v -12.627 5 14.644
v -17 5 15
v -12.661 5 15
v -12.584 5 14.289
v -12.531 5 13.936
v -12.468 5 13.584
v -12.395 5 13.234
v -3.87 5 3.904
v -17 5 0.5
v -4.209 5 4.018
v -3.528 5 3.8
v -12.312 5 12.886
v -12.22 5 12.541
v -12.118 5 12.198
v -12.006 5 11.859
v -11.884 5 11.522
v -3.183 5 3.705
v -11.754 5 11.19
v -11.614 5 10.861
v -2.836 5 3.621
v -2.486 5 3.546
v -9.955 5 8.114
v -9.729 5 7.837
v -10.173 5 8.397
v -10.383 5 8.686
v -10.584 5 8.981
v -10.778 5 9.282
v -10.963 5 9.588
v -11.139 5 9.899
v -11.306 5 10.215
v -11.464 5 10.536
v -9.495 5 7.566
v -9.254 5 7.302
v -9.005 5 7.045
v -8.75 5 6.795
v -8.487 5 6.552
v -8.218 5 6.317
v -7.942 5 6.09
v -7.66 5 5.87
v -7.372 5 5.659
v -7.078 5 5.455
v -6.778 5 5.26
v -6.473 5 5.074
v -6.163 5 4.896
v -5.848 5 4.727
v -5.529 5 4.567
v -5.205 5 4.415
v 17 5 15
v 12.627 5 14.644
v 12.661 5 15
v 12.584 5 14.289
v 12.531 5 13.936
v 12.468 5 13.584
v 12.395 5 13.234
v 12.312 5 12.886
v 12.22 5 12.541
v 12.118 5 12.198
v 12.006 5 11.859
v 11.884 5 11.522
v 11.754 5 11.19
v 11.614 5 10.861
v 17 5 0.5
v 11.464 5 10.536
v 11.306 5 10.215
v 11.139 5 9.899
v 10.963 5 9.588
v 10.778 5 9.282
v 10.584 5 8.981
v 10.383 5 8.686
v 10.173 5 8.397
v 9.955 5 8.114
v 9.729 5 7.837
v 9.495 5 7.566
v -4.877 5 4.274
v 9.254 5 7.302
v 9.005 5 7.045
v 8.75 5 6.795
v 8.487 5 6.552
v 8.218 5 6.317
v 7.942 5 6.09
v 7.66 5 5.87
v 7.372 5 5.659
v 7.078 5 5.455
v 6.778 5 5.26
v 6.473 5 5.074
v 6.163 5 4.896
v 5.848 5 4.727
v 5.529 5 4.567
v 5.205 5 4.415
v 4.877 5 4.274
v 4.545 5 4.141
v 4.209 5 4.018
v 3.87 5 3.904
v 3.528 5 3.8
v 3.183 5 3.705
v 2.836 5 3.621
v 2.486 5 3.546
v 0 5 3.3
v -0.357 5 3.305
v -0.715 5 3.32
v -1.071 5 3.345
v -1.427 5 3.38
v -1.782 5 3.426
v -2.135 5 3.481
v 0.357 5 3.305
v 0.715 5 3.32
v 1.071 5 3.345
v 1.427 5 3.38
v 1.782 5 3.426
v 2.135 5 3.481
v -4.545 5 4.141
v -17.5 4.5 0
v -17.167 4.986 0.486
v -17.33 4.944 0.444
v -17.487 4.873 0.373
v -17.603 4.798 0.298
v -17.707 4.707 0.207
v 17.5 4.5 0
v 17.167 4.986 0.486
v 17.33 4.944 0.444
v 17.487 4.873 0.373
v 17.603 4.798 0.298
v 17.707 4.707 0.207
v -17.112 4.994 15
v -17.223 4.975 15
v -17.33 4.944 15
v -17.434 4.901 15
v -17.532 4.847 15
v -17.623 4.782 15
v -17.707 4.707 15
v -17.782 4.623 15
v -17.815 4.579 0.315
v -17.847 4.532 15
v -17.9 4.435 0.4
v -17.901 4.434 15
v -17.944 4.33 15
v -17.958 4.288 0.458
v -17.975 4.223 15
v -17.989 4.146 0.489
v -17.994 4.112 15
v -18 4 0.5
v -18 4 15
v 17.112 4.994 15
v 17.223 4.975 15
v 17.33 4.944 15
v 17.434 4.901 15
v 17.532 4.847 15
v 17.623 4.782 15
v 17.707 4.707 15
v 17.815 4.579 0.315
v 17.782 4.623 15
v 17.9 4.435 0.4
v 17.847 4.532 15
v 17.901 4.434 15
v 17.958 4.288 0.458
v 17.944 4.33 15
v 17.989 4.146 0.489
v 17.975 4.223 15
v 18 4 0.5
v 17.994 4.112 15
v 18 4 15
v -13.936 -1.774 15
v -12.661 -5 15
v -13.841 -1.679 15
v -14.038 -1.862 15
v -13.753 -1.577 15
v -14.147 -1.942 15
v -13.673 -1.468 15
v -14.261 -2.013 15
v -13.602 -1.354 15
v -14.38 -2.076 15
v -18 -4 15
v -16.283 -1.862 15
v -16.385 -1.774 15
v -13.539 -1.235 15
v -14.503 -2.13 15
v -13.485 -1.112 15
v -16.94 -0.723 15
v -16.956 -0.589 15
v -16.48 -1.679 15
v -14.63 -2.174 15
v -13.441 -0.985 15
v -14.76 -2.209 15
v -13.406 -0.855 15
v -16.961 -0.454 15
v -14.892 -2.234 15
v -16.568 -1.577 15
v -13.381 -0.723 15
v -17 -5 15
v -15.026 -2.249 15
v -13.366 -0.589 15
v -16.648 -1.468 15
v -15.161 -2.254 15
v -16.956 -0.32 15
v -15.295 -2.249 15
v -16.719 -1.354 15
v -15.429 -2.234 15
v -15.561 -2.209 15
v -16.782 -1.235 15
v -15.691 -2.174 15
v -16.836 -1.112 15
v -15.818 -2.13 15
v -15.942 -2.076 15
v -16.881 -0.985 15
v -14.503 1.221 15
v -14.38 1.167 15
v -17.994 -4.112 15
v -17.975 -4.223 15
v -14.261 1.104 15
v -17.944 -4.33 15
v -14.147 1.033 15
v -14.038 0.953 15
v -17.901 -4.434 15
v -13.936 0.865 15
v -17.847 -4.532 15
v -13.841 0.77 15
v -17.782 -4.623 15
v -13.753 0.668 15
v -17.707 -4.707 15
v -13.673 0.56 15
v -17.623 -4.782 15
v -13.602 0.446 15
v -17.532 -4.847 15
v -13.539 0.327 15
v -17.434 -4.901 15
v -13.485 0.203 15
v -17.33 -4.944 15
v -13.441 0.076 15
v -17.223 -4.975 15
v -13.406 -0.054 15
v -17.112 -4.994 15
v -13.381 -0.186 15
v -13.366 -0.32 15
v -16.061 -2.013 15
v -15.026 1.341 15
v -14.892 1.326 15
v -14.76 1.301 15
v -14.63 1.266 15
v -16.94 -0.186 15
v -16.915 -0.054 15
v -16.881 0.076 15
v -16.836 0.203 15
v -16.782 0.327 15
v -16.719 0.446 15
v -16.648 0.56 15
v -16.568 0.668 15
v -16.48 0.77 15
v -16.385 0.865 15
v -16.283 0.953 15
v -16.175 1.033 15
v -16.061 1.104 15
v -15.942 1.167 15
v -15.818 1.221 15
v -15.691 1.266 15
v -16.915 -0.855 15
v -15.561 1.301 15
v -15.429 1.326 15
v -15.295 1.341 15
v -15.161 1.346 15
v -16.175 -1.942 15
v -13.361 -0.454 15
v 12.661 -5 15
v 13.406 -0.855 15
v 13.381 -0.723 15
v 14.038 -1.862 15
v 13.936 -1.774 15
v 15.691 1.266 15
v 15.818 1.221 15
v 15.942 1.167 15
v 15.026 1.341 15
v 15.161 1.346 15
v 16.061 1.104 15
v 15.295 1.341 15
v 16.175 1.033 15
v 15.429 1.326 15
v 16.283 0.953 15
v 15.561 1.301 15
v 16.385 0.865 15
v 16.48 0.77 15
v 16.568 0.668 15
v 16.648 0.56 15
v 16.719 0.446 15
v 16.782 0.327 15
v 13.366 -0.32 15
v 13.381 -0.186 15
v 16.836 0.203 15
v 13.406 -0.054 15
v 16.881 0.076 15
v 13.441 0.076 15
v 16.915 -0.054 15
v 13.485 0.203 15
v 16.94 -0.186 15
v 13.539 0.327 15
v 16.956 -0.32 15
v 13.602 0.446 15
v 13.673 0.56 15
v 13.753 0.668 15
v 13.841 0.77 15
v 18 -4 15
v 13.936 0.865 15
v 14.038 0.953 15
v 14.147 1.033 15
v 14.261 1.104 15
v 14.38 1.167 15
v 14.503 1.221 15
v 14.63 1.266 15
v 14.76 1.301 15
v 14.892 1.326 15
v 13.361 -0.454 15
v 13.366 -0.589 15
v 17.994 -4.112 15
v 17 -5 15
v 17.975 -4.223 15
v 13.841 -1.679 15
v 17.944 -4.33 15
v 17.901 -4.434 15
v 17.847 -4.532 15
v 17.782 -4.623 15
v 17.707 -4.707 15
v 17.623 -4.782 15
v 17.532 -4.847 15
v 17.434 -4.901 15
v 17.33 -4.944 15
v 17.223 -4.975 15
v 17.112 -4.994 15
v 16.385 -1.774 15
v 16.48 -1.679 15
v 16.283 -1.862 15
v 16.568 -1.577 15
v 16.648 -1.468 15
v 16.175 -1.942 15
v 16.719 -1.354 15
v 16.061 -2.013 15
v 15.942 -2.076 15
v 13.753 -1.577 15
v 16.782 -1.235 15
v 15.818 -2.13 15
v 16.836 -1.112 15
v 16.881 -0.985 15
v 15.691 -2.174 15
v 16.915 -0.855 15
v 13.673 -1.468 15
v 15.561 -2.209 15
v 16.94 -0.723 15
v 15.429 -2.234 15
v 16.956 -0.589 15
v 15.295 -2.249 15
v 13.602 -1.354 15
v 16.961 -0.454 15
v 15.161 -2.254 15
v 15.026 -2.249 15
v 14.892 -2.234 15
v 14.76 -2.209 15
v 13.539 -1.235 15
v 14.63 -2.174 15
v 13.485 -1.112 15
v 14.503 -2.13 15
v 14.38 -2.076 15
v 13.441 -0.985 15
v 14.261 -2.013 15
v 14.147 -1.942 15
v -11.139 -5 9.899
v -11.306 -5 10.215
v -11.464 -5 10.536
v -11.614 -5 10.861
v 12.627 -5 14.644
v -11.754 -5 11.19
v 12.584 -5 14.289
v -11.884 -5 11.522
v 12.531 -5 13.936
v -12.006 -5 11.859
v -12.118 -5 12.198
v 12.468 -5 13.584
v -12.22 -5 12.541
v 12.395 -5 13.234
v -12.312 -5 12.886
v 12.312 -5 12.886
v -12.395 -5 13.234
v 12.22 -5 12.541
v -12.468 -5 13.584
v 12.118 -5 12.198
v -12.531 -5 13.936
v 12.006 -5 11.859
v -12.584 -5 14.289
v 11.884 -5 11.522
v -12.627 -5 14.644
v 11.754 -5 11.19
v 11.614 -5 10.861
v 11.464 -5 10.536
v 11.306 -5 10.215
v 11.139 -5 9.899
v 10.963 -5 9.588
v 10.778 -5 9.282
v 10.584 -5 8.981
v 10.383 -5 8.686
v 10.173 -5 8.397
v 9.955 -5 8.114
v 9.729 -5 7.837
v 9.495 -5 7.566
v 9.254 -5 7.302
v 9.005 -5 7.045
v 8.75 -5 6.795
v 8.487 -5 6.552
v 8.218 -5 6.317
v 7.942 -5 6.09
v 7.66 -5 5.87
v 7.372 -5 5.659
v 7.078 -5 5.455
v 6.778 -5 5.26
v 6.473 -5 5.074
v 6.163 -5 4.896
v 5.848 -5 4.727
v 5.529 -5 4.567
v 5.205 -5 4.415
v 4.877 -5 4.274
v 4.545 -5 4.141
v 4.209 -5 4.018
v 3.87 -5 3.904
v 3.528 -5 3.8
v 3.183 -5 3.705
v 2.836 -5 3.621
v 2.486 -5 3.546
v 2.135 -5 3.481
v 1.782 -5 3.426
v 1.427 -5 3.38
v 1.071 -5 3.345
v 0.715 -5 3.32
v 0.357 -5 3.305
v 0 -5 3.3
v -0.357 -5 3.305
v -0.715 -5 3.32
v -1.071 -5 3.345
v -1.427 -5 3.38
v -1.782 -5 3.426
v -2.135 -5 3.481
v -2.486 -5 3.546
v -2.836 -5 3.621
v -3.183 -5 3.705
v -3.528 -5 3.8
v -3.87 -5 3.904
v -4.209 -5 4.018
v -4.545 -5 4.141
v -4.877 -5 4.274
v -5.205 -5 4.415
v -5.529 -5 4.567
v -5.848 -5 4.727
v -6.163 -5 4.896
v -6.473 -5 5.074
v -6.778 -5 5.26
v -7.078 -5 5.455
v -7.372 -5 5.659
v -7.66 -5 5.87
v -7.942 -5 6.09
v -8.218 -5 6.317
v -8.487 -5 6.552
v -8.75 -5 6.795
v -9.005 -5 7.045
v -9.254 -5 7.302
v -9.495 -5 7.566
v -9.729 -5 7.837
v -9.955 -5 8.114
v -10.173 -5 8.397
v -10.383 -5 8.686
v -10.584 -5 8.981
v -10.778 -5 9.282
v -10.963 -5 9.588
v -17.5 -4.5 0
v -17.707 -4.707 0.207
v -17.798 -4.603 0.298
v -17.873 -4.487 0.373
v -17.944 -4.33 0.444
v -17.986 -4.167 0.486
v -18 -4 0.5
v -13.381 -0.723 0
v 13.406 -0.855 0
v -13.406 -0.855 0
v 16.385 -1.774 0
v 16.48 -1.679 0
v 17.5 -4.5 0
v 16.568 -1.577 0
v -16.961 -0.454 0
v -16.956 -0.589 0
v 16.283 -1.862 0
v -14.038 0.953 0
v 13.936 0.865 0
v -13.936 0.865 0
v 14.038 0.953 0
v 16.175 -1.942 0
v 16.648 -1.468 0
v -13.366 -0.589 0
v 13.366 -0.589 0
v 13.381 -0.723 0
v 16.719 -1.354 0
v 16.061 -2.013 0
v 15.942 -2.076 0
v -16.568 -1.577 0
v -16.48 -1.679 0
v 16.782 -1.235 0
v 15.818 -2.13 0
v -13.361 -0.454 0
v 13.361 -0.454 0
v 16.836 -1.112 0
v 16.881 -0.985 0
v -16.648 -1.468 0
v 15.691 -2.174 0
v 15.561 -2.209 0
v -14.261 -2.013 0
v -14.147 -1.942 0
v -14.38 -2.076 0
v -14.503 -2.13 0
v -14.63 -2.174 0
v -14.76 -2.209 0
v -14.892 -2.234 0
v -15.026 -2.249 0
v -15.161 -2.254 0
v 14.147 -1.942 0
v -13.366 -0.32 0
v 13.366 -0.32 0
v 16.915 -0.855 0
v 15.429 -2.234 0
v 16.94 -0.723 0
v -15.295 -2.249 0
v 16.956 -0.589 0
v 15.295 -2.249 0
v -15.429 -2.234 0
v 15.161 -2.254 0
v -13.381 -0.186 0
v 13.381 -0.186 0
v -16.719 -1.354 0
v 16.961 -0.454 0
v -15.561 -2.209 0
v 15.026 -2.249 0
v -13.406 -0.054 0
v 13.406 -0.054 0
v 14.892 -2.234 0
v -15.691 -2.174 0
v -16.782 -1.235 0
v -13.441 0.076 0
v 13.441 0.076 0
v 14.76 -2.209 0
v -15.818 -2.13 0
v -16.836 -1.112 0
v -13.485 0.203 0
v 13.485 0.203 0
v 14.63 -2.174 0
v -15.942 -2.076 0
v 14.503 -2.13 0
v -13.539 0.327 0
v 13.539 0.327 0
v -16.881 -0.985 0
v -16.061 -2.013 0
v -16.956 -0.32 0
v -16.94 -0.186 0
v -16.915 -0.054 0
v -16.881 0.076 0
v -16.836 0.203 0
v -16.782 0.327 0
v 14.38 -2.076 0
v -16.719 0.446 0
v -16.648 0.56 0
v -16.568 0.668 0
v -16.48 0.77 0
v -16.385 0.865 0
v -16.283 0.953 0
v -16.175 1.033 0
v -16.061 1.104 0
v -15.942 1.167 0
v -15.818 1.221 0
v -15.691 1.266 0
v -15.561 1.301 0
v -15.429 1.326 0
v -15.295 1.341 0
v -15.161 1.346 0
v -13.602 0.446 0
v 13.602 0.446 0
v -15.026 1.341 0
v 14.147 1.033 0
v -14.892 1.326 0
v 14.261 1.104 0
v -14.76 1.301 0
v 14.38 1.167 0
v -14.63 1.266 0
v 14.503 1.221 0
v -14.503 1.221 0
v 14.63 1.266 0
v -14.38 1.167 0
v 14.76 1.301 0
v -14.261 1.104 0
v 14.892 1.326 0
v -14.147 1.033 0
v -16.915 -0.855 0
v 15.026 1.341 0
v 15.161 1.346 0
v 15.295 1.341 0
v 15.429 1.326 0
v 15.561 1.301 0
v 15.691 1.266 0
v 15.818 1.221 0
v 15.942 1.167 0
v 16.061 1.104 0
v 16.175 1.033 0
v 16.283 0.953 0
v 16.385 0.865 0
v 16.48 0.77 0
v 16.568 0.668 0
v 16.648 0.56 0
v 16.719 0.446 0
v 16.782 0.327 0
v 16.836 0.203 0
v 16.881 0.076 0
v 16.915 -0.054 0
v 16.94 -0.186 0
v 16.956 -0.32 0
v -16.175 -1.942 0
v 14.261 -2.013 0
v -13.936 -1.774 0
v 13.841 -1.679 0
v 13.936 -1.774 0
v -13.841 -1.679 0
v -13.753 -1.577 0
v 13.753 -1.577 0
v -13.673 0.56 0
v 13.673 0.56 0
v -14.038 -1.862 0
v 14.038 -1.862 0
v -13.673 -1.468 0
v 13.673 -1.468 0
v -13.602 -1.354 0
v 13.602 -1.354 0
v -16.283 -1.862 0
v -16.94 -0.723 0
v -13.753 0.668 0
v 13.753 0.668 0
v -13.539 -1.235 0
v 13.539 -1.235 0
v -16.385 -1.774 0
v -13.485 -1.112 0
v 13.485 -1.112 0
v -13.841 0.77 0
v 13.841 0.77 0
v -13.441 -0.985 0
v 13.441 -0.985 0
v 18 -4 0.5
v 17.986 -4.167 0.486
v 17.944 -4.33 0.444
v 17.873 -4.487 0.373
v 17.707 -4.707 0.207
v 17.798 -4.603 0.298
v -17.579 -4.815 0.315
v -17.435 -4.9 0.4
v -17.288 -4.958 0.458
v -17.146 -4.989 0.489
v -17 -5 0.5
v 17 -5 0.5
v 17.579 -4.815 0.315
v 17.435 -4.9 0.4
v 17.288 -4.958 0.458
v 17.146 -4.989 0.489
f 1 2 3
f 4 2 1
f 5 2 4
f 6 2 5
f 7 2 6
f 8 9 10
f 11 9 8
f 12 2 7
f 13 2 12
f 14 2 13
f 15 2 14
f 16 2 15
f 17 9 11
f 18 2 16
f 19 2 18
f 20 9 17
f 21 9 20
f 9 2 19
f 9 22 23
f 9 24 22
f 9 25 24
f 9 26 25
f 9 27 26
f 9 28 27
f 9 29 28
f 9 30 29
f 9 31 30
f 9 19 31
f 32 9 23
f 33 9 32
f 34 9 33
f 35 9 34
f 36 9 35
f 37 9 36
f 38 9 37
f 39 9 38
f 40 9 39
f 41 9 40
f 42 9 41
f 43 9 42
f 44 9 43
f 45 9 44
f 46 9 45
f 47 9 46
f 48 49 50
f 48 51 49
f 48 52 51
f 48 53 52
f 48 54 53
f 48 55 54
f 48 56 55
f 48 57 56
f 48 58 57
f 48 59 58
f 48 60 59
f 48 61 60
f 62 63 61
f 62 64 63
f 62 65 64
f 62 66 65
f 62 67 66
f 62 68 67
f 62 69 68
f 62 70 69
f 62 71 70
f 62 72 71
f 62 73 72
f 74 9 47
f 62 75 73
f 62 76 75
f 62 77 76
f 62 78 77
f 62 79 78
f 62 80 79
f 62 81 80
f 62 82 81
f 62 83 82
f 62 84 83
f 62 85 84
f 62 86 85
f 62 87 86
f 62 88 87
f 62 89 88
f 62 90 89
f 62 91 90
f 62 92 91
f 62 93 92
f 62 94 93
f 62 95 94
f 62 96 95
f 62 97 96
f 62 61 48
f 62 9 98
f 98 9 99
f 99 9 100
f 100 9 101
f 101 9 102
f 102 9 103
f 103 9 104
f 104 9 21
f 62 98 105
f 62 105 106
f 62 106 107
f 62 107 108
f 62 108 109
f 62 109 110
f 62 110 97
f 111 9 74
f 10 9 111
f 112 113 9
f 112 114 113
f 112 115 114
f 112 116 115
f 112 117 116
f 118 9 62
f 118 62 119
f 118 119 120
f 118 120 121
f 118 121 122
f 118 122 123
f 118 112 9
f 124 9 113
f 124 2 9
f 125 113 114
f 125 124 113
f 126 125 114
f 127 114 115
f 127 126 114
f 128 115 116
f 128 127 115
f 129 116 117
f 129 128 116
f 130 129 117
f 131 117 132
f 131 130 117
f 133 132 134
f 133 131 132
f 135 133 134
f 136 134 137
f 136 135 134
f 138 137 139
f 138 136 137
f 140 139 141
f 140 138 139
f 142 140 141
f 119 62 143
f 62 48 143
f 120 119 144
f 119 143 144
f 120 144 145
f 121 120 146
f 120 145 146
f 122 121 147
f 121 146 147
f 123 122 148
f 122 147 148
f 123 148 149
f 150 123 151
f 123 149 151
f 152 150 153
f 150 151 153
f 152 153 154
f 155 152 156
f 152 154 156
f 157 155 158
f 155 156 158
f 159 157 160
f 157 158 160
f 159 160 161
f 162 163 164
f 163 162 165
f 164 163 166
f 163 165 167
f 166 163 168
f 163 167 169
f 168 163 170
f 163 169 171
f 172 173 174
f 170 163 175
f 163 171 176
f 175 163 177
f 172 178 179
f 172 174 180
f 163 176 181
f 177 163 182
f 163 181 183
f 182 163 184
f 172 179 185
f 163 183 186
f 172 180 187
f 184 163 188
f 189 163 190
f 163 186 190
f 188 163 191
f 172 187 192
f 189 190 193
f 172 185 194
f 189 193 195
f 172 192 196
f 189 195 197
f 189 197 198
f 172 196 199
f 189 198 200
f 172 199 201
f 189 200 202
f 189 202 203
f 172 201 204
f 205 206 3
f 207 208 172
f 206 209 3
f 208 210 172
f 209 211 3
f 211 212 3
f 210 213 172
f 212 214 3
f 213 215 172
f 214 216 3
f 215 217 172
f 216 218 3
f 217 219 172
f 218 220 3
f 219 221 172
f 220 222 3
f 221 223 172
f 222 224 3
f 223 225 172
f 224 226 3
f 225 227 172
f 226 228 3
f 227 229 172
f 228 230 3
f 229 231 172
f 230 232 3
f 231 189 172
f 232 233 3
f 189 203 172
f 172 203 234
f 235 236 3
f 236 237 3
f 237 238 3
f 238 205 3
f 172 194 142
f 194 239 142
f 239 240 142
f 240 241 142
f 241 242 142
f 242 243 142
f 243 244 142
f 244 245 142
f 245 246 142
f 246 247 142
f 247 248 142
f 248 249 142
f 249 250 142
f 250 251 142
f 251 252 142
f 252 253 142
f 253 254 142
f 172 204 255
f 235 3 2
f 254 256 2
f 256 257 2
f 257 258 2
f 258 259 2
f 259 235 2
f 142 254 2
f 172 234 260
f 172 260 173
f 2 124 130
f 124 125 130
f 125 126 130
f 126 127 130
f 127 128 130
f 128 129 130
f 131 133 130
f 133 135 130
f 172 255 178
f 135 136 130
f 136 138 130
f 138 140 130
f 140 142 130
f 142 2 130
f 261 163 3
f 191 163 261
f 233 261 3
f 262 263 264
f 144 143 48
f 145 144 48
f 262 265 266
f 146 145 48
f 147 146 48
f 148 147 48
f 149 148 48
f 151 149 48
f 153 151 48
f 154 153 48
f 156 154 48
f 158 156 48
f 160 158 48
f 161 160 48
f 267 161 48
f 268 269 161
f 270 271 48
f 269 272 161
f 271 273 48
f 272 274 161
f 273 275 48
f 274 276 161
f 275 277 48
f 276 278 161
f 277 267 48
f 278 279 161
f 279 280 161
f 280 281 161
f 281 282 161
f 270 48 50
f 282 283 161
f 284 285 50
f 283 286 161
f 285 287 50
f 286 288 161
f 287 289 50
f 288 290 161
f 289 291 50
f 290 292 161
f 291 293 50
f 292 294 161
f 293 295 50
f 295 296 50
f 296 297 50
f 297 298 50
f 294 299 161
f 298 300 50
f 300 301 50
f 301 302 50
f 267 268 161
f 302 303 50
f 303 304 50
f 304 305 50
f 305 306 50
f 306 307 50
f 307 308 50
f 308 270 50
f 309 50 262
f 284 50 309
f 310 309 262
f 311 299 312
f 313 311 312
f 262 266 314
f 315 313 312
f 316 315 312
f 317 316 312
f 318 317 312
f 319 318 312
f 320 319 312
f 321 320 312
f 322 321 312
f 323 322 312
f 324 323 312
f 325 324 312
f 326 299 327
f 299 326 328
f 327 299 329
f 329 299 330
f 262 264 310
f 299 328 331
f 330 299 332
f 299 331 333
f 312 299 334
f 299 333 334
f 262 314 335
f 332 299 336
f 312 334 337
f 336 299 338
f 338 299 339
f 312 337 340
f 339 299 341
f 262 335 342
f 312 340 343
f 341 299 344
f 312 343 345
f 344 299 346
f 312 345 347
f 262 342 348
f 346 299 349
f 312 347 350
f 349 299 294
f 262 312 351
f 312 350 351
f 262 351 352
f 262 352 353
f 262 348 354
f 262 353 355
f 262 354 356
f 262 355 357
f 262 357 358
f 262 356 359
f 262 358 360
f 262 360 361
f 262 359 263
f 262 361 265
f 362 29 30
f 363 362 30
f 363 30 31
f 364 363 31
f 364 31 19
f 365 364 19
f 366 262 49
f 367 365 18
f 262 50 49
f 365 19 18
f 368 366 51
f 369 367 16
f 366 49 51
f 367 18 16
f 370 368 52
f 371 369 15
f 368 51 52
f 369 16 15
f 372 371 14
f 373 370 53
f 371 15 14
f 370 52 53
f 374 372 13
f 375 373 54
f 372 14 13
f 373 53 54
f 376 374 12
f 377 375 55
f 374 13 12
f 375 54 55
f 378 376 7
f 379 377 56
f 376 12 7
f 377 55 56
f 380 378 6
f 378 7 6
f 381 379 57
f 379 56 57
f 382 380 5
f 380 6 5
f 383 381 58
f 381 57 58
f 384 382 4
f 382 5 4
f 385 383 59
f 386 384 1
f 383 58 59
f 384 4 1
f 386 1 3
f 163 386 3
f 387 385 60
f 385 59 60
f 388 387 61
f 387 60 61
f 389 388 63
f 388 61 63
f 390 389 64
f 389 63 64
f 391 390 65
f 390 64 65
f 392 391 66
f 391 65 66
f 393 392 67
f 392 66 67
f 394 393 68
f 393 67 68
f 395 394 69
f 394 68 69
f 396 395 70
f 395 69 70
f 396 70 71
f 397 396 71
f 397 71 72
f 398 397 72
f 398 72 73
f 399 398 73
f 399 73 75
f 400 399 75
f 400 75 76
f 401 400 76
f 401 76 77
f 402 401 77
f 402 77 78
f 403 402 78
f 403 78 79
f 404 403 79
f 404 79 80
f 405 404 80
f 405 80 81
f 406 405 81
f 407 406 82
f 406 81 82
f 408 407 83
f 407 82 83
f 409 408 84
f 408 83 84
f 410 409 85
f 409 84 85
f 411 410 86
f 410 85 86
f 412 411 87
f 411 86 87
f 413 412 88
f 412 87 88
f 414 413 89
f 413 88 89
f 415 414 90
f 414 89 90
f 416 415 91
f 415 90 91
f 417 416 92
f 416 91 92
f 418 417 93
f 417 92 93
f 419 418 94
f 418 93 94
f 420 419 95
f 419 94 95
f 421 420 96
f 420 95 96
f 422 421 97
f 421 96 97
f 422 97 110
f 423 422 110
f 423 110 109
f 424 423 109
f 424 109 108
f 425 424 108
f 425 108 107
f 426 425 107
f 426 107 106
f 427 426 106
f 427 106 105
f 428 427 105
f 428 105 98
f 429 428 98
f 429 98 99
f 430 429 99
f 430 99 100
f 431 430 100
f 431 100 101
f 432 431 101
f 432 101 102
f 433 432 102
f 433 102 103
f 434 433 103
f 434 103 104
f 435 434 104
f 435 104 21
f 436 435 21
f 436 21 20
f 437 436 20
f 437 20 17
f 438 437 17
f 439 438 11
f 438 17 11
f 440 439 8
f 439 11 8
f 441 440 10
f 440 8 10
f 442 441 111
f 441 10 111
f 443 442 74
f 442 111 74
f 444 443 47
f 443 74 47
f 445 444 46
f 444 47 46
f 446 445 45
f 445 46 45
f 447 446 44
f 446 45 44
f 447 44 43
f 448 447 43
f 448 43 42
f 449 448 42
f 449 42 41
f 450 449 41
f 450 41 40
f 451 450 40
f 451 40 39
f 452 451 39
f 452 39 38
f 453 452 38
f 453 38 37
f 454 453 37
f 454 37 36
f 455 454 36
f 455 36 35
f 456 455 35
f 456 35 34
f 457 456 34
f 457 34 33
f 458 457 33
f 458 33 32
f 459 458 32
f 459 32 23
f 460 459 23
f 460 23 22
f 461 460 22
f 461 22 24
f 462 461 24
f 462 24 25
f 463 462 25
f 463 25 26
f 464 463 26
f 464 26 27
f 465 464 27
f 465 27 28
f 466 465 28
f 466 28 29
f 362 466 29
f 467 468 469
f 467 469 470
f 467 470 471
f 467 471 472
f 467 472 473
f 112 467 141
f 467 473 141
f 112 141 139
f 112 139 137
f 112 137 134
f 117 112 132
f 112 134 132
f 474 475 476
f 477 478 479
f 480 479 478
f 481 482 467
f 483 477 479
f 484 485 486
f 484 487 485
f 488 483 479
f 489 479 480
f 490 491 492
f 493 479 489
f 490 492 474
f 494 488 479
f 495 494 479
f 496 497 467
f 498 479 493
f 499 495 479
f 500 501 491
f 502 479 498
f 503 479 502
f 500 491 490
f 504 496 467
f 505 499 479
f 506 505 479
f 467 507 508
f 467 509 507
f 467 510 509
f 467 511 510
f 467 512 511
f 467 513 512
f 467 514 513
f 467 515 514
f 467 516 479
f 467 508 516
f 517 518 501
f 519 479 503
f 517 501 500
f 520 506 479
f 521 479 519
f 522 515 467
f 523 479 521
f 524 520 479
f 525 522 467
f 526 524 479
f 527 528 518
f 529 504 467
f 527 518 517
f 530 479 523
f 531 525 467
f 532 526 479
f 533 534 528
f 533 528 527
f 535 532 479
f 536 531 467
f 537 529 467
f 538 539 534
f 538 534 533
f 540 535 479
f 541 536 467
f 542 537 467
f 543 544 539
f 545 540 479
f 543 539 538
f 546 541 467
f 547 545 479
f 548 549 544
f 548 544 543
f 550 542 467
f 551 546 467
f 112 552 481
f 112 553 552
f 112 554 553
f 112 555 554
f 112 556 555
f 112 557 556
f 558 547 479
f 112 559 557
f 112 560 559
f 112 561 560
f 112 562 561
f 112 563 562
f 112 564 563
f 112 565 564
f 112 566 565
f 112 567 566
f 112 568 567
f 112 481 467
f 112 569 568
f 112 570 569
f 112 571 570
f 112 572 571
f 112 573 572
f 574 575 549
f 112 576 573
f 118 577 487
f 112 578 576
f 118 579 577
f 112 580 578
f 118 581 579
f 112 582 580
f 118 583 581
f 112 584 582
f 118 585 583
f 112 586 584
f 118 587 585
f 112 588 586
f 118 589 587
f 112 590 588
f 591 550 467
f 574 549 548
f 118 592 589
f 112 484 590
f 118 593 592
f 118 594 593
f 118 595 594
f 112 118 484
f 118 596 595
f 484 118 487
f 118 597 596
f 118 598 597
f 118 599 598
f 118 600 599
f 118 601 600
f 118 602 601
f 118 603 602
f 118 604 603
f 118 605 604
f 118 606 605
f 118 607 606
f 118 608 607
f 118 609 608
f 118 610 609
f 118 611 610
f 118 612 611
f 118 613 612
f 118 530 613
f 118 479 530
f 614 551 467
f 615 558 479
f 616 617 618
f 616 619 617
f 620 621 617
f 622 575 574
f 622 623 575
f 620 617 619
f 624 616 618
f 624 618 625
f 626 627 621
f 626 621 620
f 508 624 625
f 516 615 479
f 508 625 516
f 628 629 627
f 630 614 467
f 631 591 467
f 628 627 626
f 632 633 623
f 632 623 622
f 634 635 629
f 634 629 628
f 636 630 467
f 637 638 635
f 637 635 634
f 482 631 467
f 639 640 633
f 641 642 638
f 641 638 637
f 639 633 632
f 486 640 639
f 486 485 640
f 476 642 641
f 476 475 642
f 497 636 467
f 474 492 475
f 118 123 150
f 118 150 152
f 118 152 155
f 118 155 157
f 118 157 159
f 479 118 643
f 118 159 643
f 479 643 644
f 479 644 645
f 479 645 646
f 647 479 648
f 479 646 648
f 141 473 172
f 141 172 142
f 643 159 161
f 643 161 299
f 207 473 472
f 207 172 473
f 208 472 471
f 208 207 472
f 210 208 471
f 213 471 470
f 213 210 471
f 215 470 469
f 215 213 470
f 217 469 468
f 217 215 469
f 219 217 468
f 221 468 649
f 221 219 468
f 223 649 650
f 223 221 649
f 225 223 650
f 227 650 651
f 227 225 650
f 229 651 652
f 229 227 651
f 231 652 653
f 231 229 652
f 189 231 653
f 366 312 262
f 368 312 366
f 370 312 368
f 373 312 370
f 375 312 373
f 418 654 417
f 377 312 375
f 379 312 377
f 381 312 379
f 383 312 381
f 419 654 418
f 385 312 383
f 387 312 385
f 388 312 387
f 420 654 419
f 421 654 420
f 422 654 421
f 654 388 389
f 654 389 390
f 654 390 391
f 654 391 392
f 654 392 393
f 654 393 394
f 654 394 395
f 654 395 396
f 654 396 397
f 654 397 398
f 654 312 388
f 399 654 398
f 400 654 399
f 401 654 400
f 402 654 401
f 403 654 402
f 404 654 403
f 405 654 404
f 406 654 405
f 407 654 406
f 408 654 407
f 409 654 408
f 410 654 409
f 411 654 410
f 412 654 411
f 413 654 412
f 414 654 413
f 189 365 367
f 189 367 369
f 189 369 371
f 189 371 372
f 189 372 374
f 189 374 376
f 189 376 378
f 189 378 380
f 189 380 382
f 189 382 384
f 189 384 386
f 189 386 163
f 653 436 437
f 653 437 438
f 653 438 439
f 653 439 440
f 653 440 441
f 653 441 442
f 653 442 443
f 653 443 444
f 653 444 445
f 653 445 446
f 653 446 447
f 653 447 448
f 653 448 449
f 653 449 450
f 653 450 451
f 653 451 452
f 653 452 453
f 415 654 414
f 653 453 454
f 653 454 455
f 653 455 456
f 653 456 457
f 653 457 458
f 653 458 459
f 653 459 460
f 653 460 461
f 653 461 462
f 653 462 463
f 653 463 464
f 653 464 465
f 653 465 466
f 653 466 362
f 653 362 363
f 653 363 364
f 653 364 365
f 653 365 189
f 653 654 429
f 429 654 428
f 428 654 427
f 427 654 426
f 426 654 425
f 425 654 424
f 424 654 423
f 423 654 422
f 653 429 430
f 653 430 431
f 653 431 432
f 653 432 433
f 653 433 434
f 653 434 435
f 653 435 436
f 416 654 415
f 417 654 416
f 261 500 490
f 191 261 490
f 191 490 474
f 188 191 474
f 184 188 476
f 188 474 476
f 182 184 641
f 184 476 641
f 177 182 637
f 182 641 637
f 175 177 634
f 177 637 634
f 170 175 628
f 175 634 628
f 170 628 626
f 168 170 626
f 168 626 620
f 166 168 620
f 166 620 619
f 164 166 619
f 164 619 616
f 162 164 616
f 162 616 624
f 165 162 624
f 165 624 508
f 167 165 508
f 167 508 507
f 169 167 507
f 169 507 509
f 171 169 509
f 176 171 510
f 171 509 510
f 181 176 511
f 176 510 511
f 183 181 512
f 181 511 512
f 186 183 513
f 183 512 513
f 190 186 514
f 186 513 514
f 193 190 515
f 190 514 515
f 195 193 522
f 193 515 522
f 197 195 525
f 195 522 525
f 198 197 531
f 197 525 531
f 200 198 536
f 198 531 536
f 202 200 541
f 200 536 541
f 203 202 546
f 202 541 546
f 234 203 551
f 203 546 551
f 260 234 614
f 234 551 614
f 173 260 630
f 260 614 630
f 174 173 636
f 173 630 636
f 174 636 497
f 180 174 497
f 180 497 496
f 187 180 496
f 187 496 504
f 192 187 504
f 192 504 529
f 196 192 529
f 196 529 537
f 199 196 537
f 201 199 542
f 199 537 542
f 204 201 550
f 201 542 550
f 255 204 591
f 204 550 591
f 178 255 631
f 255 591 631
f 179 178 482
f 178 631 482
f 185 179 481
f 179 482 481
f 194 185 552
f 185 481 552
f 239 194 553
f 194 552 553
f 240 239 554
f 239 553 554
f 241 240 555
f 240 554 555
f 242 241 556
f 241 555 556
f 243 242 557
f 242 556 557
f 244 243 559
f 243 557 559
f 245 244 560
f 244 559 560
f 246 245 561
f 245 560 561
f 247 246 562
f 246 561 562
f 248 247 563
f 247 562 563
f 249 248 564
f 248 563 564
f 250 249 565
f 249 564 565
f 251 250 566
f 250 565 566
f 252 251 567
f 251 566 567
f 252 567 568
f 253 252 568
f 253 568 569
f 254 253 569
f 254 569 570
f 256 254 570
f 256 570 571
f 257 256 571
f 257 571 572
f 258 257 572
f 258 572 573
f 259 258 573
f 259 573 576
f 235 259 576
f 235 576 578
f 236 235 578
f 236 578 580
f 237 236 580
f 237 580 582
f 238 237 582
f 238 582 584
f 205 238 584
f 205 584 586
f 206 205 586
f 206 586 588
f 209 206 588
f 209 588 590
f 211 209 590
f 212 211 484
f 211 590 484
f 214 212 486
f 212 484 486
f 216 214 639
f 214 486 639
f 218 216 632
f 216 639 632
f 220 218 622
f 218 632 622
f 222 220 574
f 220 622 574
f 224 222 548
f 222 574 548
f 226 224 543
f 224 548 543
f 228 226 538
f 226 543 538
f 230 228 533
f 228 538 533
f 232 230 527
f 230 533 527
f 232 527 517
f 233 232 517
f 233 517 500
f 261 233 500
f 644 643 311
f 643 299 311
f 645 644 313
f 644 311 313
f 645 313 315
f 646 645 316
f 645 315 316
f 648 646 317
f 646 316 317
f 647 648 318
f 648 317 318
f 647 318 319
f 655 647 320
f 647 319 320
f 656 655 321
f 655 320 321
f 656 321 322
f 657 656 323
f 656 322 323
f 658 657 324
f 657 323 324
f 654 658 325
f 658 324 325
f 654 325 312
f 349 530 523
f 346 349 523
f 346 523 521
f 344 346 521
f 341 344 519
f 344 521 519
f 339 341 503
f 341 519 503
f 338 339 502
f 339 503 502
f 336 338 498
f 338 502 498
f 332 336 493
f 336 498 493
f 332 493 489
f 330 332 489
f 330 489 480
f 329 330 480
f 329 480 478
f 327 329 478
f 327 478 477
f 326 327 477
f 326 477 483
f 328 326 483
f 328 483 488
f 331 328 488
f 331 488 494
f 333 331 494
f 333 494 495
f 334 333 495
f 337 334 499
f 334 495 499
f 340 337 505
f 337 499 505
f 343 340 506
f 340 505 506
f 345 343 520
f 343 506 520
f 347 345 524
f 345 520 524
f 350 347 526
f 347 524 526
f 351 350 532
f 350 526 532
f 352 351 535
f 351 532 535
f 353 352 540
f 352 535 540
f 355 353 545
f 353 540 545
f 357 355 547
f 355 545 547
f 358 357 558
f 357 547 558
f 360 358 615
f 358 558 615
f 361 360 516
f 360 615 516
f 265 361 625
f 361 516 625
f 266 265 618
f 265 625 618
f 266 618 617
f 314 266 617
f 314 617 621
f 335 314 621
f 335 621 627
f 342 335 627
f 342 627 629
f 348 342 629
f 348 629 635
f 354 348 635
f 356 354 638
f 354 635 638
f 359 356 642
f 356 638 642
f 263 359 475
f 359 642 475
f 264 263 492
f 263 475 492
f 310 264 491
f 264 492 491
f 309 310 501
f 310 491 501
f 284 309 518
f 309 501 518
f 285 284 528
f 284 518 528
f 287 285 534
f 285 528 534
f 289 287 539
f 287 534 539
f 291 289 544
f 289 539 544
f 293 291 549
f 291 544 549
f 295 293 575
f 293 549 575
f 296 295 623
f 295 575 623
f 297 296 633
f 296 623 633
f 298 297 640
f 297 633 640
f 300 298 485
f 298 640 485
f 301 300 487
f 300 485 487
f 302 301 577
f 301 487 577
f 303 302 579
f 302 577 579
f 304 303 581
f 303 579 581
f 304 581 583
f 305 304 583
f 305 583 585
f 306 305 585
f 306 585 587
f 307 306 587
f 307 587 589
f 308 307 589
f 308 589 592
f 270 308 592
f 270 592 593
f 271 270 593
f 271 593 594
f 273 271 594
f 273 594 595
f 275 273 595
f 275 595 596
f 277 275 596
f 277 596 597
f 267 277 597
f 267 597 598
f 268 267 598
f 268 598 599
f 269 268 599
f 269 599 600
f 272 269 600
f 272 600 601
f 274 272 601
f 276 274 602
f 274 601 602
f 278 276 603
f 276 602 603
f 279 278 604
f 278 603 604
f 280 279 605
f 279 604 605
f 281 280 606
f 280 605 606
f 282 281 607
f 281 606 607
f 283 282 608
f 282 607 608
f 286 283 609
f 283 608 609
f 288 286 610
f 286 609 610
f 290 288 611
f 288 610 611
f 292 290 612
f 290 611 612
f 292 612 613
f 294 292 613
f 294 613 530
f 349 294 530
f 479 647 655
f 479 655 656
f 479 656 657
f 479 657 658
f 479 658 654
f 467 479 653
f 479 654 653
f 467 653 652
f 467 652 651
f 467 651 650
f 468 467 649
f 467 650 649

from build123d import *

# Parameters (mm, degrees)
SKETCH_W        = 36
SKETCH_H        = 10
PAD_DEPTH       = 15
SKETCH004_R     = 12.7
POCKET_DEPTH    = 10.001
CHAMFER_SIZE    = 0.5
SKETCH005_R     = 1.8
POCKET001_DEPTH = 15.001
FILLET_R        = 1


with BuildPart() as part:
    # Sketch → Pad (new body)
    with BuildSketch(Plane.XY):
        Rectangle(SKETCH_W, SKETCH_H)
    extrude(amount=PAD_DEPTH)

    # Sketch004 → Pocket (cut, through all)
    with BuildSketch(Plane(origin=(0, 5, 0), x_dir=(-1, 0, 0), z_dir=(0, 1, 0))):
        with Locations((0, 16)):
            Circle(SKETCH004_R)
    extrude(amount=-POCKET_DEPTH, mode=Mode.SUBTRACT)

    # Chamfer
    chamfer_edges = [part.edges().sort_by_distance(p)[0] for p in [
        (0, 5, 0),
        (18, 0, 0),
        (0, -5, 0),
        (-18, 0, 0),
    ]]
    chamfer(chamfer_edges, length=CHAMFER_SIZE)

    # Sketch005 → Pocket001 (cut, through all)
    with BuildSketch(Plane(origin=(0, 0, 0), x_dir=(1, 0, 0), z_dir=(0, 0, -1))):
        with Locations((15.160569, 0.454356)):
            Circle(SKETCH005_R)
        with Locations((-15.160569, 0.454356)):
            Circle(SKETCH005_R)
    extrude(amount=-POCKET001_DEPTH, mode=Mode.SUBTRACT)

    # Fillet
    fillet_edges = [part.edges().sort_by_distance(p)[0] for p in [
        (-18, -5, 7.75),
        (18, -5, 7.75),
        (18, 5, 7.75),
        (-18, 5, 7.75),
    ]]
    fillet(fillet_edges, radius=FILLET_R)


solid = part.part
